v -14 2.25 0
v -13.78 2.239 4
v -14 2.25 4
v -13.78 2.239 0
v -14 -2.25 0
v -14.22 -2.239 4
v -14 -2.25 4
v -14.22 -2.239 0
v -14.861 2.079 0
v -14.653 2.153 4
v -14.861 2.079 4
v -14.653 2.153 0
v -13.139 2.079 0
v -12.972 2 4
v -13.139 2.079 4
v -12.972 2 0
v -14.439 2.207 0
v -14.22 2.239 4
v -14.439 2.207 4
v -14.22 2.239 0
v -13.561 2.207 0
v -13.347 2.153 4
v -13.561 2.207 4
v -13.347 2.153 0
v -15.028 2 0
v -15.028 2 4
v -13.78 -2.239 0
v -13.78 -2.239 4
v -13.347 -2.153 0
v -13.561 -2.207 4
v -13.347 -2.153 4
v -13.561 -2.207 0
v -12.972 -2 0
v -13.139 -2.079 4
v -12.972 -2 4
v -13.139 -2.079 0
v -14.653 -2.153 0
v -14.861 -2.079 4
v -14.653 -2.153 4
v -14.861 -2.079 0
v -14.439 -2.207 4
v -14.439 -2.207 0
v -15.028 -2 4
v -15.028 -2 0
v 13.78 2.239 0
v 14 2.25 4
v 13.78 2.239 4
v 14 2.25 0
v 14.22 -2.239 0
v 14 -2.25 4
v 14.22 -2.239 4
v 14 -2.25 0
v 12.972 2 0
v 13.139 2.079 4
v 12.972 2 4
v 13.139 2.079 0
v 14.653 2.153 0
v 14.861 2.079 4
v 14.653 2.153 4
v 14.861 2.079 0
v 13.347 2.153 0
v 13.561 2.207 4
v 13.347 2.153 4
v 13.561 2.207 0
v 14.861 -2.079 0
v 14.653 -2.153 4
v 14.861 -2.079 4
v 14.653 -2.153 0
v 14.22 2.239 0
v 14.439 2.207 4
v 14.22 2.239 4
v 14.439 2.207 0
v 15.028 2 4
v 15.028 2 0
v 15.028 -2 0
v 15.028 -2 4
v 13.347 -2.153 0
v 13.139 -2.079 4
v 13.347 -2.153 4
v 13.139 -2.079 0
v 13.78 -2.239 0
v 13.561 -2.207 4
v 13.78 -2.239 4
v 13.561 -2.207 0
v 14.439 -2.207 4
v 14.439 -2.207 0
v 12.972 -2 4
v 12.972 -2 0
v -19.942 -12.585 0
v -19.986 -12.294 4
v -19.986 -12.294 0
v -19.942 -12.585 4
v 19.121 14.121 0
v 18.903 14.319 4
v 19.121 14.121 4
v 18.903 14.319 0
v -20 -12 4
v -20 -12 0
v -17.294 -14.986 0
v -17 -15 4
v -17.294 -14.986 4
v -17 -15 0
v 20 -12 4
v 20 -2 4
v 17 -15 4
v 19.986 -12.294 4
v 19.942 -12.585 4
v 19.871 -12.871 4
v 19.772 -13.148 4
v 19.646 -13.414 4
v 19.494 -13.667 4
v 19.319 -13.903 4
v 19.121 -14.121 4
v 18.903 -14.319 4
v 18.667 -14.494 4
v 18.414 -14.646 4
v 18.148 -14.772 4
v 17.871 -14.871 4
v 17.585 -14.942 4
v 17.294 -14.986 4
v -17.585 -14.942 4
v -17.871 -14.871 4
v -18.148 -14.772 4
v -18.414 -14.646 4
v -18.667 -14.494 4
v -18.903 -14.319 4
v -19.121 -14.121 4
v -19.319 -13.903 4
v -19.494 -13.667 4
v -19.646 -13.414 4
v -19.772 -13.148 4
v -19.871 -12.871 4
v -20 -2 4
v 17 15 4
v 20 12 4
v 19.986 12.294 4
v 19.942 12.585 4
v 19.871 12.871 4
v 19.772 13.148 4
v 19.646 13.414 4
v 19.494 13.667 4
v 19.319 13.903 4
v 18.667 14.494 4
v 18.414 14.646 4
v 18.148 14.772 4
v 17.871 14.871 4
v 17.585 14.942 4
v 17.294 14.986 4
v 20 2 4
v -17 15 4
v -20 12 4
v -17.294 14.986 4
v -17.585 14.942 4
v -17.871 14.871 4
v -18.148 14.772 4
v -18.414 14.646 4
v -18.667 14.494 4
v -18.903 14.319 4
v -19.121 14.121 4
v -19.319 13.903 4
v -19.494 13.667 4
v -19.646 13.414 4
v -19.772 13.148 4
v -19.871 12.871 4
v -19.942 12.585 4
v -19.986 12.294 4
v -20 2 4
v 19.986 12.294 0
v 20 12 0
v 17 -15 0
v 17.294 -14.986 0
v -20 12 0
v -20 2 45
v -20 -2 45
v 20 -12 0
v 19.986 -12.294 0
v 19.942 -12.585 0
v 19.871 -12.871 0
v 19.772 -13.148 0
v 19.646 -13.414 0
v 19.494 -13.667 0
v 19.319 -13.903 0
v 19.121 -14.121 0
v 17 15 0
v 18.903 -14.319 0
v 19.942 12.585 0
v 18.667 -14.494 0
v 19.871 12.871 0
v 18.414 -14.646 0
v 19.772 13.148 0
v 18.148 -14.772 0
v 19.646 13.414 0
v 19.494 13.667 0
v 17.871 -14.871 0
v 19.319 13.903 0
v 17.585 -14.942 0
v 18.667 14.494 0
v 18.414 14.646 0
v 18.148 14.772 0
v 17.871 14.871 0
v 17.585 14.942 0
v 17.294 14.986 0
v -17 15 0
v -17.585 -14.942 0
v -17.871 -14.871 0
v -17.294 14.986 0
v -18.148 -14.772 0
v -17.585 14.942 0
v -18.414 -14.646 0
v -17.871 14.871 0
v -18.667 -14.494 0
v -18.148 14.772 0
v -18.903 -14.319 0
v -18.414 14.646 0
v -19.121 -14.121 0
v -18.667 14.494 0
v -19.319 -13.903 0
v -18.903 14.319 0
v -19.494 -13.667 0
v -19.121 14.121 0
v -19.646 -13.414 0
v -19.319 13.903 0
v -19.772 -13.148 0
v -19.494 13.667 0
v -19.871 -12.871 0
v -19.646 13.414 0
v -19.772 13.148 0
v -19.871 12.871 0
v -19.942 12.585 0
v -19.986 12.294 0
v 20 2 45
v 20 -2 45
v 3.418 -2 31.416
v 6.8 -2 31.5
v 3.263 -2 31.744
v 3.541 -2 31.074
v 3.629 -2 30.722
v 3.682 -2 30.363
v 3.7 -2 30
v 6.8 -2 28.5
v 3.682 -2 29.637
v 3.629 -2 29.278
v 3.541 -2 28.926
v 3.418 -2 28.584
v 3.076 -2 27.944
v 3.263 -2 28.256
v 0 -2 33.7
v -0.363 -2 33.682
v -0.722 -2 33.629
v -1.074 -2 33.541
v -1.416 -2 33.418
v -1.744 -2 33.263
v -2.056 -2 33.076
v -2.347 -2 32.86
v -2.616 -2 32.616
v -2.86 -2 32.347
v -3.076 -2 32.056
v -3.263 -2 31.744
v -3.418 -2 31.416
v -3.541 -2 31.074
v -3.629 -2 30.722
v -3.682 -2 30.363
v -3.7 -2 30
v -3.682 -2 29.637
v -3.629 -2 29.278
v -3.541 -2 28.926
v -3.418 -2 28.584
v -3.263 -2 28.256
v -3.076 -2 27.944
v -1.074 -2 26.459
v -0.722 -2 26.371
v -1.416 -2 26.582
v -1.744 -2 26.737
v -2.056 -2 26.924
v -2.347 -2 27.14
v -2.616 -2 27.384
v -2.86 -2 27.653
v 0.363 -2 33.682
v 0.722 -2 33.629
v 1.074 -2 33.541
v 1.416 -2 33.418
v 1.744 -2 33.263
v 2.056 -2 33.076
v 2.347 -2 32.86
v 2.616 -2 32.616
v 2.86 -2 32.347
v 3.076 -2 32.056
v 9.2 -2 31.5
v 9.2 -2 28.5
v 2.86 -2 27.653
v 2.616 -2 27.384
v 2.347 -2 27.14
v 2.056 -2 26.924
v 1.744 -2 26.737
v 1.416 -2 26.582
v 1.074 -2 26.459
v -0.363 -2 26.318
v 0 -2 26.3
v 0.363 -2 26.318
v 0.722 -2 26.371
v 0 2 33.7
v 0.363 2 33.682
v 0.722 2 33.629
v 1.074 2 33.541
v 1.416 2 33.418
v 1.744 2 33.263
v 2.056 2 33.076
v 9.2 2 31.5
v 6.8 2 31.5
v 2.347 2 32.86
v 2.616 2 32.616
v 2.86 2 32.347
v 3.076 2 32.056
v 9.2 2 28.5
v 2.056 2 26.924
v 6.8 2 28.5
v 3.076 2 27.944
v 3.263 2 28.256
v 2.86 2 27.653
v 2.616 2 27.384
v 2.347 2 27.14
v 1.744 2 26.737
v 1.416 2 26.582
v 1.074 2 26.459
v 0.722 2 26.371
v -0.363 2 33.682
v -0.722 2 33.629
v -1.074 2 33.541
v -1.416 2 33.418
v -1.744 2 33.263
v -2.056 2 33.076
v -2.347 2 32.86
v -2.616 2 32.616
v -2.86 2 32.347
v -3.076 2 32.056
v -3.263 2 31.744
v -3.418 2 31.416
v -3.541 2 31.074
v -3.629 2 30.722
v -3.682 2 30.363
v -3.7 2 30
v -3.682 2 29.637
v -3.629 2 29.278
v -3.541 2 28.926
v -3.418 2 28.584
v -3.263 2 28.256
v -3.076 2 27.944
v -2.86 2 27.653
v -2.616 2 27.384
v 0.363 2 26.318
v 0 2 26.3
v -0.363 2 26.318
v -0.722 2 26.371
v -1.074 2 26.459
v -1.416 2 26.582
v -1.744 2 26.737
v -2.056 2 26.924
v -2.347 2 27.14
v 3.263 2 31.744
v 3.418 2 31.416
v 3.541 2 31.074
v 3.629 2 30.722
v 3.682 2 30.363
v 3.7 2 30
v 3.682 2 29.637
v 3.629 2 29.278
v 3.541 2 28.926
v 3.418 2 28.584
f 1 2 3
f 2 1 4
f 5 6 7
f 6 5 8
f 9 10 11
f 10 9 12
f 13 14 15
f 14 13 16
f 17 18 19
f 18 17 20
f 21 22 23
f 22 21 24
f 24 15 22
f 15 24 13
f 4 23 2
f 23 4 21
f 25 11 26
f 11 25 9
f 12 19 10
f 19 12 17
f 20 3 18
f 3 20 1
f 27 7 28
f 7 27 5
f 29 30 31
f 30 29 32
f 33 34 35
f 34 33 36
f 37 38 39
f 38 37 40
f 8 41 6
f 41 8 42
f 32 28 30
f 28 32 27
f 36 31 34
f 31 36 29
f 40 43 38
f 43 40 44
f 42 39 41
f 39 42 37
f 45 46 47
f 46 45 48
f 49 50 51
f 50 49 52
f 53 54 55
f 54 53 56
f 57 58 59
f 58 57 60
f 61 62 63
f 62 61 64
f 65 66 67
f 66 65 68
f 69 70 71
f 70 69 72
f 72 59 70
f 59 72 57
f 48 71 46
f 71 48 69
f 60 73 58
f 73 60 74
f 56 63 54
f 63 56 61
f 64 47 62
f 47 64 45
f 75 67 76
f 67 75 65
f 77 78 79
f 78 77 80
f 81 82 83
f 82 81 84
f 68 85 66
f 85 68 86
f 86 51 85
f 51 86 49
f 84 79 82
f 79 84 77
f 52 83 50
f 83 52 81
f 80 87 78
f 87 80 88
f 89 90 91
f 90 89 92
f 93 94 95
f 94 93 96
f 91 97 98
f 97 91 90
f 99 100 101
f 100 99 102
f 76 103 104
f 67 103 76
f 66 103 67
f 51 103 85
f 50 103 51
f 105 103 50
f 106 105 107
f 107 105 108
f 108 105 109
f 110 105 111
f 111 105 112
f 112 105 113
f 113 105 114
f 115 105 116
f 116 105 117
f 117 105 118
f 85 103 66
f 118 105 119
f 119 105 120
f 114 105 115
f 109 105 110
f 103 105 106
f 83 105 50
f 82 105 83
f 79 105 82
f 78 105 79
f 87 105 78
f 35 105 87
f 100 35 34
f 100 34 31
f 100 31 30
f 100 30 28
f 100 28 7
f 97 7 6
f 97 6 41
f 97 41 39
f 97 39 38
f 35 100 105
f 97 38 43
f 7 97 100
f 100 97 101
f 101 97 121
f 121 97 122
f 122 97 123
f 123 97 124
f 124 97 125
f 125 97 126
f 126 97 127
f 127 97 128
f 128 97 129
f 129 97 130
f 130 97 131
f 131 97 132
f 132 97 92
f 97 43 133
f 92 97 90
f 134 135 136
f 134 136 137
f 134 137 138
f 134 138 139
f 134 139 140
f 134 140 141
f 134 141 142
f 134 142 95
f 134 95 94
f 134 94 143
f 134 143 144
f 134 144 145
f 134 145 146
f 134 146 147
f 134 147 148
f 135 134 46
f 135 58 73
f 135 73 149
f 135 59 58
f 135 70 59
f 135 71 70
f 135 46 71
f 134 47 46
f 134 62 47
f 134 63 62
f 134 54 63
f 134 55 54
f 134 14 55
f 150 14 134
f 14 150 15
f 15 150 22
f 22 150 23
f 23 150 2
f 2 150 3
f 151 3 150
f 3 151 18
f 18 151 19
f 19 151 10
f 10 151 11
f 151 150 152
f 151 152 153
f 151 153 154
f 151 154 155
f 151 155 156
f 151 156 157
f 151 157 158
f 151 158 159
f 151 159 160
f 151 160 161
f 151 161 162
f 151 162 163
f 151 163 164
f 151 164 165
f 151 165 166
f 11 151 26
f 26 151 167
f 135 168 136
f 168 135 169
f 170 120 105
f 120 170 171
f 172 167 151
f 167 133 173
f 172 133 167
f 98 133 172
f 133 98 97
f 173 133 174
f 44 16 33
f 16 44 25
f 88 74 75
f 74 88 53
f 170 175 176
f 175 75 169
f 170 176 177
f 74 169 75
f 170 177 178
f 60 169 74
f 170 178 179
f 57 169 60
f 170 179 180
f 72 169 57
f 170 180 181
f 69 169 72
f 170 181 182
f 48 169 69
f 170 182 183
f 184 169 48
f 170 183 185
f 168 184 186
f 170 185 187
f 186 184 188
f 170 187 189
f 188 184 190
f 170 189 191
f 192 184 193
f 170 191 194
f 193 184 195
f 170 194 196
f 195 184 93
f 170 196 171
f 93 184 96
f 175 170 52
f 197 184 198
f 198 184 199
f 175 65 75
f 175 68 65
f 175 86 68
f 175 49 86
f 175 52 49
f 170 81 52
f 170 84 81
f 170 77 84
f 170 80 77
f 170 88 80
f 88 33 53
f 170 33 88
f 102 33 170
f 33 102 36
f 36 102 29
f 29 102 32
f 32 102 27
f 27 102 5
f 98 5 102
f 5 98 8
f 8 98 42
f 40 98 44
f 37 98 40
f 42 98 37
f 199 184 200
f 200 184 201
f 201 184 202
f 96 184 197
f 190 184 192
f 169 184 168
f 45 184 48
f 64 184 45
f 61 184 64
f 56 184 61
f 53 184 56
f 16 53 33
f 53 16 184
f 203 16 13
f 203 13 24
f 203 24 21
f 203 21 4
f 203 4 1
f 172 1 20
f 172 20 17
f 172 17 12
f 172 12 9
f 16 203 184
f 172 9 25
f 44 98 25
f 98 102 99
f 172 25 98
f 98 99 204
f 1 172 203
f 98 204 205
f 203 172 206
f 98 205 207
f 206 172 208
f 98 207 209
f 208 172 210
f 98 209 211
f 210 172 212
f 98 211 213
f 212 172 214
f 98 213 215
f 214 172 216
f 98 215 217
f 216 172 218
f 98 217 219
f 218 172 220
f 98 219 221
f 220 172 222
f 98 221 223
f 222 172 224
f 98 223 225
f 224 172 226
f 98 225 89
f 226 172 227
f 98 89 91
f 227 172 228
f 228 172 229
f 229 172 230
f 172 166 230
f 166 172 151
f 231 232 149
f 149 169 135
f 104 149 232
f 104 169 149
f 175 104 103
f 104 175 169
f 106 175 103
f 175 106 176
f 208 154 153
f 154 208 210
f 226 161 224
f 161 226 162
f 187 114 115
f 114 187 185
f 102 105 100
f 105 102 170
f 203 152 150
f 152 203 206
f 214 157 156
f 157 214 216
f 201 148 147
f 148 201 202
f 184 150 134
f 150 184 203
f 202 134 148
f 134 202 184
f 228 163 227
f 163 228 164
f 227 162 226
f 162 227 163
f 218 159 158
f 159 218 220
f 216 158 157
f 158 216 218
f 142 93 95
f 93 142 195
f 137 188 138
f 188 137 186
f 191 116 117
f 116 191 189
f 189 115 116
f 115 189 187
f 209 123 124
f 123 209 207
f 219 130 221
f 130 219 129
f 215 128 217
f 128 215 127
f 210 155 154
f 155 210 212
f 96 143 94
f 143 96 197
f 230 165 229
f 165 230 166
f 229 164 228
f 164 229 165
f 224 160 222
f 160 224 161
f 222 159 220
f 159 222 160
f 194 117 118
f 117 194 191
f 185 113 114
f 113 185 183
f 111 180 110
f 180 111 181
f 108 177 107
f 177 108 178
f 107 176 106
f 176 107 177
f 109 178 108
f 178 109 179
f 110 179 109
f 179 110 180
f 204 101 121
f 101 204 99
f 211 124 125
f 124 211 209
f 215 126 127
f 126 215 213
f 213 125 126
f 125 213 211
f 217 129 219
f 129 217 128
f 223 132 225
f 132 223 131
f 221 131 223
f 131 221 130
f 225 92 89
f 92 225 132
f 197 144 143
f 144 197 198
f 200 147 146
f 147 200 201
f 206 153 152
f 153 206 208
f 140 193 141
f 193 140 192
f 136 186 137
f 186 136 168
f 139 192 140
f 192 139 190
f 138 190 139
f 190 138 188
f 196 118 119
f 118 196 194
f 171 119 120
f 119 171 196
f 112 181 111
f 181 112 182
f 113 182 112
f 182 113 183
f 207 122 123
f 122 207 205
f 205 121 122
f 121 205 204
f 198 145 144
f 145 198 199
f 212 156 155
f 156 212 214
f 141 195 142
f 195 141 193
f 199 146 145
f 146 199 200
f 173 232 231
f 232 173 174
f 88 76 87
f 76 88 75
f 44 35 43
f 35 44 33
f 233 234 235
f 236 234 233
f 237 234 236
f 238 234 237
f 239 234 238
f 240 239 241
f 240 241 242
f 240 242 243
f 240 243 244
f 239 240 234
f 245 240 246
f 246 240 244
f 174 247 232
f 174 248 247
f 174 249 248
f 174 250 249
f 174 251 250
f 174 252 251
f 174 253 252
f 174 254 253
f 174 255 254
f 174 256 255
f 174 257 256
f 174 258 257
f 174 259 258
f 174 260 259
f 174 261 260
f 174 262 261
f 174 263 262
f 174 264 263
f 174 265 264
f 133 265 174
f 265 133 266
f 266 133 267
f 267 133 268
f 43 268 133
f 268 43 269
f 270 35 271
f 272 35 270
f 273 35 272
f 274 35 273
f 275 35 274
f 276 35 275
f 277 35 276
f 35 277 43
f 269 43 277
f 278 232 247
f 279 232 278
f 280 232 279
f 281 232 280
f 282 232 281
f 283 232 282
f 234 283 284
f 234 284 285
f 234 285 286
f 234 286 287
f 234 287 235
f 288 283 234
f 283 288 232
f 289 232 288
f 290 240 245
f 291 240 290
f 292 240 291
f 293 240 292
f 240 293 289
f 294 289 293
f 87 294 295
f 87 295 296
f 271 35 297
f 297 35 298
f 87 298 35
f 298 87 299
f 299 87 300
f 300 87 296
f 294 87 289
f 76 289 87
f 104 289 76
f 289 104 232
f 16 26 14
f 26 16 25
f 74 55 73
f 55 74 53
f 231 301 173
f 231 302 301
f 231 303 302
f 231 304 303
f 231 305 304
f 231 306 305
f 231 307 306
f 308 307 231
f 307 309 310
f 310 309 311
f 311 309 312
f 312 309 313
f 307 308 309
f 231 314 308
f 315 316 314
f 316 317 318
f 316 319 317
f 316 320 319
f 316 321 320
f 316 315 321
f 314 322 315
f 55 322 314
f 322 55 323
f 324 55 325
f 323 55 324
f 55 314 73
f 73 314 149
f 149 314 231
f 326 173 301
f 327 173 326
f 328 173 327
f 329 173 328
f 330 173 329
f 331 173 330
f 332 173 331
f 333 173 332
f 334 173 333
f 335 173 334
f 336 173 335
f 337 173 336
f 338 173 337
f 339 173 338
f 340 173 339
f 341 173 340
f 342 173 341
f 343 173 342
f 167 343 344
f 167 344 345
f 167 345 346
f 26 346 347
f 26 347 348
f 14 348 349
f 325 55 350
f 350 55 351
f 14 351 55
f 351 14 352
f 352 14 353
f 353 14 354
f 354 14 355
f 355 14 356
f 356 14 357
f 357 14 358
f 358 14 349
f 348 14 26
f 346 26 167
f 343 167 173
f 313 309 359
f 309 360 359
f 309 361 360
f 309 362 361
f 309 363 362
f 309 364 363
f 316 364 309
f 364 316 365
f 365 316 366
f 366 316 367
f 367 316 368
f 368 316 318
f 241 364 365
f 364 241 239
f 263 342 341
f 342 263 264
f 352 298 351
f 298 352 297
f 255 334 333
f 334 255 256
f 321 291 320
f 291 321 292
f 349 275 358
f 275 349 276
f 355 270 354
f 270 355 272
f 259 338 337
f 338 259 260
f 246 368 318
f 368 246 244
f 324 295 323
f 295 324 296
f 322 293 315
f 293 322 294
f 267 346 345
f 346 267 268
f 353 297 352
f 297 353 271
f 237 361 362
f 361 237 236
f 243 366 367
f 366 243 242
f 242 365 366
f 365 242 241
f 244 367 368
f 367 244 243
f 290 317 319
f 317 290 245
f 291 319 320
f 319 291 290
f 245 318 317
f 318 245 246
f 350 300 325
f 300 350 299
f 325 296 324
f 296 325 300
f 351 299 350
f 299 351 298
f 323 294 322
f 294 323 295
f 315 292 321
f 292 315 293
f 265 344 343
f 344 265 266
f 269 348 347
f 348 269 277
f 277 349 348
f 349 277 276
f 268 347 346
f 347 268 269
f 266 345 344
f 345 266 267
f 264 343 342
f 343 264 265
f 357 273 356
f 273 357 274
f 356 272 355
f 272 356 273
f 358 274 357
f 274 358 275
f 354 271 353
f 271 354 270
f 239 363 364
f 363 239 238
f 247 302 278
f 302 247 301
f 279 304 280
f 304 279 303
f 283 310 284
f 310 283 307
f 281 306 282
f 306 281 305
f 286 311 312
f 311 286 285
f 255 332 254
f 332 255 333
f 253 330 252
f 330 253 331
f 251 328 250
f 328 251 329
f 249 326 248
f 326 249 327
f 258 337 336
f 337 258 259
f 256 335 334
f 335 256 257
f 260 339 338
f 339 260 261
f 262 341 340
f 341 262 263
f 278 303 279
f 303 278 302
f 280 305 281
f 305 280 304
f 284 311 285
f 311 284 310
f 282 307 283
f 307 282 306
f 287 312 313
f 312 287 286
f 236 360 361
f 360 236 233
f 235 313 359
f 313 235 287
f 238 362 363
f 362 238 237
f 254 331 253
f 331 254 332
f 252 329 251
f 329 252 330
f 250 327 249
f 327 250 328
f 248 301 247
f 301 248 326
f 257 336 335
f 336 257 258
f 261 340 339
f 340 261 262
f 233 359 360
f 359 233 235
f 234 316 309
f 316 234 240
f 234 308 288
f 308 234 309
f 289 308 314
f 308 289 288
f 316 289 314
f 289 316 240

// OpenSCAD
// file: common.scad
// common.scad -- shared dimensions for the seesaw-rig parts (millimetres).
// Drone-control bootcamp, CC BY 4.0. Measure your own parts and adjust.

beam_w      = 20.0;   // square aluminium tube (or pine strip), outer size
fit         = 0.4;    // printing clearance for sliding fits
bearing_od  = 22.0;   // 608 bearing
bearing_w   = 7.0;
axle_d      = 8.0;    // M8 threaded rod or 8 mm steel rod
pot_shaft_d = 6.0;    // common B10K pot (WH148): 6 mm shaft
pot_bush_d  = 7.0;    // threaded bushing (M7)
m3          = 3.4;    // M3 clearance hole
m3_nut      = 6.4;    // M3 nut across flats (+ clearance)
wall        = 3.0;

$fn = 64;

// rounded rectangle plate, centred in x/y, sitting on z = 0
module plate(x, y, h, r = 3) {
  hull()
    for (sx = [-1, 1], sy = [-1, 1])
      translate([sx * (x / 2 - r), sy * (y / 2 - r), 0]) cylinder(r = r, h = h);
}
// main file
// pot_bracket.scad -- L bracket that holds the pot body still, coaxial with the axle.
// Screw the foot to the outside of an upright; the pot's bushing goes through the hole,
// the anti-rotation tab of the pot into the small slot.
include <common.scad>

axle_height = 30;   // from the upright's surface to the axle centre (match your build)
foot_x = 40;
foot_y = 30;

union() {
  // foot on the upright
  difference() {
    plate(foot_x, foot_y, 4);
    for (sx = [-1, 1]) translate([sx * 14, 0, -1]) cylinder(d = 4.5, h = 6);
  }
  // vertical plate with the pot hole
  translate([-foot_x / 2, -2, 0])
    difference() {
      cube([foot_x, 4, axle_height + 15]);
      translate([foot_x / 2, -1, axle_height]) rotate([-90, 0, 0])
        cylinder(d = pot_bush_d + fit, h = 6);
      // anti-rotation tab slot, 8 mm from the shaft centre
      translate([foot_x / 2 + 8 - 1.2, -1, axle_height - 1.5]) cube([2.4, 6, 3]);
    }
}
